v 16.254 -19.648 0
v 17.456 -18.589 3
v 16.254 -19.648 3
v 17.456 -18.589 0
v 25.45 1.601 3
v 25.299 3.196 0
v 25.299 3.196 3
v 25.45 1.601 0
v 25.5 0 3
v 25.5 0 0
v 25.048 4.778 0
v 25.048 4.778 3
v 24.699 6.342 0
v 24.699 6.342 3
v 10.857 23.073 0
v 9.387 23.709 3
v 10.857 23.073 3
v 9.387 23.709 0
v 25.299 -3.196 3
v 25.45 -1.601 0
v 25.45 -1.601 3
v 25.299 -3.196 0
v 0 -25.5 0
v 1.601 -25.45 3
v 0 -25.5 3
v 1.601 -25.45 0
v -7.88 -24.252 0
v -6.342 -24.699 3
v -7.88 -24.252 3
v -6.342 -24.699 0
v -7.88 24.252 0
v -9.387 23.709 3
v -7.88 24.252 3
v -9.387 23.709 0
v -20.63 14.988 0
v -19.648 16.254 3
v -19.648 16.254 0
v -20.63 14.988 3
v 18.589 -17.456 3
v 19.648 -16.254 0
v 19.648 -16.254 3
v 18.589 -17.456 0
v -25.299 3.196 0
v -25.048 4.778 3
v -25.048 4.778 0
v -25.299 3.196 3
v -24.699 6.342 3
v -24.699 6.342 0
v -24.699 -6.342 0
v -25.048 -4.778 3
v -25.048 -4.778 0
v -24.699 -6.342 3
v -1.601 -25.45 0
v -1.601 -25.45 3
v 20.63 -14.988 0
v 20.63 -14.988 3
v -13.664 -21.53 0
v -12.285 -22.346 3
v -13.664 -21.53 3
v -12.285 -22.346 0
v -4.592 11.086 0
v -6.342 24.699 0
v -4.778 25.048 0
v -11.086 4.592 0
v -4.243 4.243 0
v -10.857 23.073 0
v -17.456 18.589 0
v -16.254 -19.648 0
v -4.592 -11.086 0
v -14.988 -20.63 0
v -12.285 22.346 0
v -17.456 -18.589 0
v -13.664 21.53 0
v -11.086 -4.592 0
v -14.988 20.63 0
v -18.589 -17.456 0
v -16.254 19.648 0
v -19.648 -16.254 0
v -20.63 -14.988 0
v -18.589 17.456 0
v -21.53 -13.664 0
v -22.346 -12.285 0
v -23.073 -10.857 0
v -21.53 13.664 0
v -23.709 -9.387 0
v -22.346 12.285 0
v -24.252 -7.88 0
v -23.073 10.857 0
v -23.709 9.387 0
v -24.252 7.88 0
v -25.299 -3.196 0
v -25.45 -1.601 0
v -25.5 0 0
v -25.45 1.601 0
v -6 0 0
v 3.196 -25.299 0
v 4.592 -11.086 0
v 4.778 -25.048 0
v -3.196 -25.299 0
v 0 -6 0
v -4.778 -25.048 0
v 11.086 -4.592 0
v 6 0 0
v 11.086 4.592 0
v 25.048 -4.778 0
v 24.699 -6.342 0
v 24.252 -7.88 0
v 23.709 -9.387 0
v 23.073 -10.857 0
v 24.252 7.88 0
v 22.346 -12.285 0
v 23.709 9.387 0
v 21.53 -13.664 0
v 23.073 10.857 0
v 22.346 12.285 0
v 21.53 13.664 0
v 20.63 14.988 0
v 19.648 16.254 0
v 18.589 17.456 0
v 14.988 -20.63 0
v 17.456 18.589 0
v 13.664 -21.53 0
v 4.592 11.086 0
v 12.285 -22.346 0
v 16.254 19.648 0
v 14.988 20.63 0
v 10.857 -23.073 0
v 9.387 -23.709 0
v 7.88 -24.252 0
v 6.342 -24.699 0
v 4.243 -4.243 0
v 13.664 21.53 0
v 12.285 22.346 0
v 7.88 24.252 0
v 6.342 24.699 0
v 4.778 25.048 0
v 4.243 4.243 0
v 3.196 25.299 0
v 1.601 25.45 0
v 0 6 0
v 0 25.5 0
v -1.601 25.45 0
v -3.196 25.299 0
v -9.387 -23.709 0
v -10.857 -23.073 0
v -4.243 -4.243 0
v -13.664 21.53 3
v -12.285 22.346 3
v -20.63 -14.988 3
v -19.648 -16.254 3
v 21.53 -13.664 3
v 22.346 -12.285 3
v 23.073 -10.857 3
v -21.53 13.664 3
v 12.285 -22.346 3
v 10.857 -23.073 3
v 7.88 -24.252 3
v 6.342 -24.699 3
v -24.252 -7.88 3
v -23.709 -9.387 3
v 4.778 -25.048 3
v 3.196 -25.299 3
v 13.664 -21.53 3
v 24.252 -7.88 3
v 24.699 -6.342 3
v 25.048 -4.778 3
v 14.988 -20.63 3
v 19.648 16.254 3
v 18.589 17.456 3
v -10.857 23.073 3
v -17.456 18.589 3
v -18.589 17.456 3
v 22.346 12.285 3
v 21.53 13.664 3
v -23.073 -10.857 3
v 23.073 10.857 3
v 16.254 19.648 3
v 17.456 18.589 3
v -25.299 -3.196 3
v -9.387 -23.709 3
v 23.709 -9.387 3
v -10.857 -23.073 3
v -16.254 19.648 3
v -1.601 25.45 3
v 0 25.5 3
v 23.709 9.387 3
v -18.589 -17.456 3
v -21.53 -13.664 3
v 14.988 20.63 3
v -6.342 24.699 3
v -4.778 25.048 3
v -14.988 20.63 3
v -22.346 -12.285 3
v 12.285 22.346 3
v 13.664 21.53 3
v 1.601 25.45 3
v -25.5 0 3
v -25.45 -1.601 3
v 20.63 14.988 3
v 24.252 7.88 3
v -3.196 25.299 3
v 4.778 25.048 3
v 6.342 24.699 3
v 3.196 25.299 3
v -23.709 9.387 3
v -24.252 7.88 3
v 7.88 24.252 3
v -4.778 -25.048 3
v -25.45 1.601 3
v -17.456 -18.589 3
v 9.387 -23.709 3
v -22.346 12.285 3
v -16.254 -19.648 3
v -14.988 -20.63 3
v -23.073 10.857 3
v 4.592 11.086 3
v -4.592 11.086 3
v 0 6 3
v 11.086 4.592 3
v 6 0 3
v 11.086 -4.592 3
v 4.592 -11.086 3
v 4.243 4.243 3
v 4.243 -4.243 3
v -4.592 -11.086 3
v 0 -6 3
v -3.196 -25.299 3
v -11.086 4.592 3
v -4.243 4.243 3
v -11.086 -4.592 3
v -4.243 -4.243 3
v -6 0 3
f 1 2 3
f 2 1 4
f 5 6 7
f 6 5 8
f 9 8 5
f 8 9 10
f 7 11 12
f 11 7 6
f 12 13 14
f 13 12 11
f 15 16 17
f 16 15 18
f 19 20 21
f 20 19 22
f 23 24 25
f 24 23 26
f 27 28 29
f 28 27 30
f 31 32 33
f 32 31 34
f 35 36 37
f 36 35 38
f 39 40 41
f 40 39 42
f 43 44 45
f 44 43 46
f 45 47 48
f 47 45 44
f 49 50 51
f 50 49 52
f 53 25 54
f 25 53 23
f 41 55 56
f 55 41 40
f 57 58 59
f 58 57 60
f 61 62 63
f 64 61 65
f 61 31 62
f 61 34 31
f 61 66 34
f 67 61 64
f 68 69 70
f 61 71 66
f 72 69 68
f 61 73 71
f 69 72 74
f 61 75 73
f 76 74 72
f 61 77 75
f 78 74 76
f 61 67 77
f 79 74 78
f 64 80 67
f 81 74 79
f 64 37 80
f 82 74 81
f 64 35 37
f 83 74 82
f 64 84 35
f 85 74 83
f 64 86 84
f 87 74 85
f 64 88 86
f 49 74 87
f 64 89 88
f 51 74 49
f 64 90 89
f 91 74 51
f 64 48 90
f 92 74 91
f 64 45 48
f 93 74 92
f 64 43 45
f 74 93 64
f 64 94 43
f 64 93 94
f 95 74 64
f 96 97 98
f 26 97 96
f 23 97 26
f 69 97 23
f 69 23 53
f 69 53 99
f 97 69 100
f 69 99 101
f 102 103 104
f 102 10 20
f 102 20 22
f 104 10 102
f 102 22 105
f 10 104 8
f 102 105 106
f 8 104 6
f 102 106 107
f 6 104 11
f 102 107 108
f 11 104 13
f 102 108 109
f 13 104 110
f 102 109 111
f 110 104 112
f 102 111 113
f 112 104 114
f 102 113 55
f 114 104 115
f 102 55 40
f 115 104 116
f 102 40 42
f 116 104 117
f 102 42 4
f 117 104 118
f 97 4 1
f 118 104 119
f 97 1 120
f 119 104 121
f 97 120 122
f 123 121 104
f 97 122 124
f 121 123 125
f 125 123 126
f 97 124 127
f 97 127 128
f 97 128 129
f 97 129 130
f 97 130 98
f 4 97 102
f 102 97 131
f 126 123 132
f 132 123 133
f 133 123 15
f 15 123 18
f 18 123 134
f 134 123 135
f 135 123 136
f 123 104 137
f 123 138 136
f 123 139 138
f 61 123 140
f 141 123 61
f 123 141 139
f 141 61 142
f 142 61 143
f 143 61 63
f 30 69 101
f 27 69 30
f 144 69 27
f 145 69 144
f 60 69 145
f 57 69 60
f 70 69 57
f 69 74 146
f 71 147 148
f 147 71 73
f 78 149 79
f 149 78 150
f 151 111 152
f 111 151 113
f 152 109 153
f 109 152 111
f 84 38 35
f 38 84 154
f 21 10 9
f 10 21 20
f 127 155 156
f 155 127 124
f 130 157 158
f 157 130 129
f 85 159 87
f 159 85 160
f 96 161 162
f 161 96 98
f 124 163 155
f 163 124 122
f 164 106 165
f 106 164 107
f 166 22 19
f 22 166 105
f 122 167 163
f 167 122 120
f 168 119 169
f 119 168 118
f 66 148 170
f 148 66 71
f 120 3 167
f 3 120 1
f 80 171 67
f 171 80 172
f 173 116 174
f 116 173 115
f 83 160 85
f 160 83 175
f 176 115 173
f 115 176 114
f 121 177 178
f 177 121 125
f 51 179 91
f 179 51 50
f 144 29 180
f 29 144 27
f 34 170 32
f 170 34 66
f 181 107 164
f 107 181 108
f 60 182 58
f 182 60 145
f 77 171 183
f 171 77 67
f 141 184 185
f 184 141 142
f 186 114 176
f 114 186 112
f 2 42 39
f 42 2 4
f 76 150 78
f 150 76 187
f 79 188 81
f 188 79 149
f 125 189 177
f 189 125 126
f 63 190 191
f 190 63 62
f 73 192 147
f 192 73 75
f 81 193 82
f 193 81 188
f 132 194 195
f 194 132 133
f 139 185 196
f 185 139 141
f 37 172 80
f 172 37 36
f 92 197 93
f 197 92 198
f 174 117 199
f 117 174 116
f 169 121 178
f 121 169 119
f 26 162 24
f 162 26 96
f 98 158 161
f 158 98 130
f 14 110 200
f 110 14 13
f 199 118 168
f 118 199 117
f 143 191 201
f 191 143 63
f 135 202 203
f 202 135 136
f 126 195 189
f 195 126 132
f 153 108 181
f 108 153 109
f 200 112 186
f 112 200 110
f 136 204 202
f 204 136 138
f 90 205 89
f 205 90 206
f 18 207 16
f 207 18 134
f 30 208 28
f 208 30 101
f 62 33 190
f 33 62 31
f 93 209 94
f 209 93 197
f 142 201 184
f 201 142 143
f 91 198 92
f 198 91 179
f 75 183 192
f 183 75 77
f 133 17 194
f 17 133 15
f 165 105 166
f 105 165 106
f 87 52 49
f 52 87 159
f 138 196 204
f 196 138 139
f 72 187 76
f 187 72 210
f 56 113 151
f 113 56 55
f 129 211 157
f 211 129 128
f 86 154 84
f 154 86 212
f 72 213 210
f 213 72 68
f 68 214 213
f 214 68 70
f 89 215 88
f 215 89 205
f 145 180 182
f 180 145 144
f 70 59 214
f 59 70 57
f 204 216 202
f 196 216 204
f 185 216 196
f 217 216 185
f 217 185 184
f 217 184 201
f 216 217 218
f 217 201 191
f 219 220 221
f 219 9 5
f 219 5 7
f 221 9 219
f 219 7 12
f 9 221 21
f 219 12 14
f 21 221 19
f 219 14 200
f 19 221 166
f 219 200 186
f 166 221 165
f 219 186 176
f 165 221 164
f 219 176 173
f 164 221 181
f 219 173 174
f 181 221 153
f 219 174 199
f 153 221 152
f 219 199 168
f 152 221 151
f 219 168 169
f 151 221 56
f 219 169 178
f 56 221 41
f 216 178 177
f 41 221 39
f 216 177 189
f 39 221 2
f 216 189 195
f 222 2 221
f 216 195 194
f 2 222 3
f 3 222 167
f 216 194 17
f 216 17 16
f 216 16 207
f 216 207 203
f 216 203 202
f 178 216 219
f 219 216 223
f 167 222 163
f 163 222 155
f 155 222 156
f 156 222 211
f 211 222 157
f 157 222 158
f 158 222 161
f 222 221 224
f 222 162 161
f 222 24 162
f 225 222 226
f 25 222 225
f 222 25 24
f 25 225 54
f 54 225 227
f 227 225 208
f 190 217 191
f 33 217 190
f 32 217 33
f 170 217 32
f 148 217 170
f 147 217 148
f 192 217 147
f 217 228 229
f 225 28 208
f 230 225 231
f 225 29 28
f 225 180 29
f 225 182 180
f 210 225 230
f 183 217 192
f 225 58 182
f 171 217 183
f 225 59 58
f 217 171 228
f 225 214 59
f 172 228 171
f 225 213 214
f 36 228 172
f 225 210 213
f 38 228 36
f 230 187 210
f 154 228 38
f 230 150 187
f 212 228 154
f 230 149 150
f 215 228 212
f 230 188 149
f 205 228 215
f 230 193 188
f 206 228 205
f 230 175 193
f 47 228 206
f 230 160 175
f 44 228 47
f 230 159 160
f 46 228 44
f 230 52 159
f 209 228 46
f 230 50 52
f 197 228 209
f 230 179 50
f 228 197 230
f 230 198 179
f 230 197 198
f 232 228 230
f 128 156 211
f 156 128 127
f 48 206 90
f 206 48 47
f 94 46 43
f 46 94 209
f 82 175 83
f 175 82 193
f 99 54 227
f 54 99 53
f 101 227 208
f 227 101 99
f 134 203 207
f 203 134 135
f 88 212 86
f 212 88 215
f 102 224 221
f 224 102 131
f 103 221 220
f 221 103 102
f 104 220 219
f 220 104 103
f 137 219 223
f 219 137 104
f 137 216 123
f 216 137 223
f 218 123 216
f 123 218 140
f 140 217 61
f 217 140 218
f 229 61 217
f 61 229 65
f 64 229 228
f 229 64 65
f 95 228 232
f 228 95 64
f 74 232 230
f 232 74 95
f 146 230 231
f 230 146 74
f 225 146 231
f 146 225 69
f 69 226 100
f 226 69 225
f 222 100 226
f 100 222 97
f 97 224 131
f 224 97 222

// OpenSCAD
$fn=100;

points=8;
innerR=6;
outerR=12;
fittingD=51;
fittingH=3;

module Star(p=5, r1=6, r2=12) {
    s = [for(i=[0:p*2]) [(i % 2 == 0 ? r1 : r2)*cos(180*i/p), (i % 2 == 0 ? r1 : r2)*sin(180*i/p)]];
    polygon(s);
}

difference() {
    cylinder(h=fittingH,d=fittingD);
	translate([0,0,-.1]) linear_extrude(fittingH+.2) Star(points, innerR, outerR);
}
